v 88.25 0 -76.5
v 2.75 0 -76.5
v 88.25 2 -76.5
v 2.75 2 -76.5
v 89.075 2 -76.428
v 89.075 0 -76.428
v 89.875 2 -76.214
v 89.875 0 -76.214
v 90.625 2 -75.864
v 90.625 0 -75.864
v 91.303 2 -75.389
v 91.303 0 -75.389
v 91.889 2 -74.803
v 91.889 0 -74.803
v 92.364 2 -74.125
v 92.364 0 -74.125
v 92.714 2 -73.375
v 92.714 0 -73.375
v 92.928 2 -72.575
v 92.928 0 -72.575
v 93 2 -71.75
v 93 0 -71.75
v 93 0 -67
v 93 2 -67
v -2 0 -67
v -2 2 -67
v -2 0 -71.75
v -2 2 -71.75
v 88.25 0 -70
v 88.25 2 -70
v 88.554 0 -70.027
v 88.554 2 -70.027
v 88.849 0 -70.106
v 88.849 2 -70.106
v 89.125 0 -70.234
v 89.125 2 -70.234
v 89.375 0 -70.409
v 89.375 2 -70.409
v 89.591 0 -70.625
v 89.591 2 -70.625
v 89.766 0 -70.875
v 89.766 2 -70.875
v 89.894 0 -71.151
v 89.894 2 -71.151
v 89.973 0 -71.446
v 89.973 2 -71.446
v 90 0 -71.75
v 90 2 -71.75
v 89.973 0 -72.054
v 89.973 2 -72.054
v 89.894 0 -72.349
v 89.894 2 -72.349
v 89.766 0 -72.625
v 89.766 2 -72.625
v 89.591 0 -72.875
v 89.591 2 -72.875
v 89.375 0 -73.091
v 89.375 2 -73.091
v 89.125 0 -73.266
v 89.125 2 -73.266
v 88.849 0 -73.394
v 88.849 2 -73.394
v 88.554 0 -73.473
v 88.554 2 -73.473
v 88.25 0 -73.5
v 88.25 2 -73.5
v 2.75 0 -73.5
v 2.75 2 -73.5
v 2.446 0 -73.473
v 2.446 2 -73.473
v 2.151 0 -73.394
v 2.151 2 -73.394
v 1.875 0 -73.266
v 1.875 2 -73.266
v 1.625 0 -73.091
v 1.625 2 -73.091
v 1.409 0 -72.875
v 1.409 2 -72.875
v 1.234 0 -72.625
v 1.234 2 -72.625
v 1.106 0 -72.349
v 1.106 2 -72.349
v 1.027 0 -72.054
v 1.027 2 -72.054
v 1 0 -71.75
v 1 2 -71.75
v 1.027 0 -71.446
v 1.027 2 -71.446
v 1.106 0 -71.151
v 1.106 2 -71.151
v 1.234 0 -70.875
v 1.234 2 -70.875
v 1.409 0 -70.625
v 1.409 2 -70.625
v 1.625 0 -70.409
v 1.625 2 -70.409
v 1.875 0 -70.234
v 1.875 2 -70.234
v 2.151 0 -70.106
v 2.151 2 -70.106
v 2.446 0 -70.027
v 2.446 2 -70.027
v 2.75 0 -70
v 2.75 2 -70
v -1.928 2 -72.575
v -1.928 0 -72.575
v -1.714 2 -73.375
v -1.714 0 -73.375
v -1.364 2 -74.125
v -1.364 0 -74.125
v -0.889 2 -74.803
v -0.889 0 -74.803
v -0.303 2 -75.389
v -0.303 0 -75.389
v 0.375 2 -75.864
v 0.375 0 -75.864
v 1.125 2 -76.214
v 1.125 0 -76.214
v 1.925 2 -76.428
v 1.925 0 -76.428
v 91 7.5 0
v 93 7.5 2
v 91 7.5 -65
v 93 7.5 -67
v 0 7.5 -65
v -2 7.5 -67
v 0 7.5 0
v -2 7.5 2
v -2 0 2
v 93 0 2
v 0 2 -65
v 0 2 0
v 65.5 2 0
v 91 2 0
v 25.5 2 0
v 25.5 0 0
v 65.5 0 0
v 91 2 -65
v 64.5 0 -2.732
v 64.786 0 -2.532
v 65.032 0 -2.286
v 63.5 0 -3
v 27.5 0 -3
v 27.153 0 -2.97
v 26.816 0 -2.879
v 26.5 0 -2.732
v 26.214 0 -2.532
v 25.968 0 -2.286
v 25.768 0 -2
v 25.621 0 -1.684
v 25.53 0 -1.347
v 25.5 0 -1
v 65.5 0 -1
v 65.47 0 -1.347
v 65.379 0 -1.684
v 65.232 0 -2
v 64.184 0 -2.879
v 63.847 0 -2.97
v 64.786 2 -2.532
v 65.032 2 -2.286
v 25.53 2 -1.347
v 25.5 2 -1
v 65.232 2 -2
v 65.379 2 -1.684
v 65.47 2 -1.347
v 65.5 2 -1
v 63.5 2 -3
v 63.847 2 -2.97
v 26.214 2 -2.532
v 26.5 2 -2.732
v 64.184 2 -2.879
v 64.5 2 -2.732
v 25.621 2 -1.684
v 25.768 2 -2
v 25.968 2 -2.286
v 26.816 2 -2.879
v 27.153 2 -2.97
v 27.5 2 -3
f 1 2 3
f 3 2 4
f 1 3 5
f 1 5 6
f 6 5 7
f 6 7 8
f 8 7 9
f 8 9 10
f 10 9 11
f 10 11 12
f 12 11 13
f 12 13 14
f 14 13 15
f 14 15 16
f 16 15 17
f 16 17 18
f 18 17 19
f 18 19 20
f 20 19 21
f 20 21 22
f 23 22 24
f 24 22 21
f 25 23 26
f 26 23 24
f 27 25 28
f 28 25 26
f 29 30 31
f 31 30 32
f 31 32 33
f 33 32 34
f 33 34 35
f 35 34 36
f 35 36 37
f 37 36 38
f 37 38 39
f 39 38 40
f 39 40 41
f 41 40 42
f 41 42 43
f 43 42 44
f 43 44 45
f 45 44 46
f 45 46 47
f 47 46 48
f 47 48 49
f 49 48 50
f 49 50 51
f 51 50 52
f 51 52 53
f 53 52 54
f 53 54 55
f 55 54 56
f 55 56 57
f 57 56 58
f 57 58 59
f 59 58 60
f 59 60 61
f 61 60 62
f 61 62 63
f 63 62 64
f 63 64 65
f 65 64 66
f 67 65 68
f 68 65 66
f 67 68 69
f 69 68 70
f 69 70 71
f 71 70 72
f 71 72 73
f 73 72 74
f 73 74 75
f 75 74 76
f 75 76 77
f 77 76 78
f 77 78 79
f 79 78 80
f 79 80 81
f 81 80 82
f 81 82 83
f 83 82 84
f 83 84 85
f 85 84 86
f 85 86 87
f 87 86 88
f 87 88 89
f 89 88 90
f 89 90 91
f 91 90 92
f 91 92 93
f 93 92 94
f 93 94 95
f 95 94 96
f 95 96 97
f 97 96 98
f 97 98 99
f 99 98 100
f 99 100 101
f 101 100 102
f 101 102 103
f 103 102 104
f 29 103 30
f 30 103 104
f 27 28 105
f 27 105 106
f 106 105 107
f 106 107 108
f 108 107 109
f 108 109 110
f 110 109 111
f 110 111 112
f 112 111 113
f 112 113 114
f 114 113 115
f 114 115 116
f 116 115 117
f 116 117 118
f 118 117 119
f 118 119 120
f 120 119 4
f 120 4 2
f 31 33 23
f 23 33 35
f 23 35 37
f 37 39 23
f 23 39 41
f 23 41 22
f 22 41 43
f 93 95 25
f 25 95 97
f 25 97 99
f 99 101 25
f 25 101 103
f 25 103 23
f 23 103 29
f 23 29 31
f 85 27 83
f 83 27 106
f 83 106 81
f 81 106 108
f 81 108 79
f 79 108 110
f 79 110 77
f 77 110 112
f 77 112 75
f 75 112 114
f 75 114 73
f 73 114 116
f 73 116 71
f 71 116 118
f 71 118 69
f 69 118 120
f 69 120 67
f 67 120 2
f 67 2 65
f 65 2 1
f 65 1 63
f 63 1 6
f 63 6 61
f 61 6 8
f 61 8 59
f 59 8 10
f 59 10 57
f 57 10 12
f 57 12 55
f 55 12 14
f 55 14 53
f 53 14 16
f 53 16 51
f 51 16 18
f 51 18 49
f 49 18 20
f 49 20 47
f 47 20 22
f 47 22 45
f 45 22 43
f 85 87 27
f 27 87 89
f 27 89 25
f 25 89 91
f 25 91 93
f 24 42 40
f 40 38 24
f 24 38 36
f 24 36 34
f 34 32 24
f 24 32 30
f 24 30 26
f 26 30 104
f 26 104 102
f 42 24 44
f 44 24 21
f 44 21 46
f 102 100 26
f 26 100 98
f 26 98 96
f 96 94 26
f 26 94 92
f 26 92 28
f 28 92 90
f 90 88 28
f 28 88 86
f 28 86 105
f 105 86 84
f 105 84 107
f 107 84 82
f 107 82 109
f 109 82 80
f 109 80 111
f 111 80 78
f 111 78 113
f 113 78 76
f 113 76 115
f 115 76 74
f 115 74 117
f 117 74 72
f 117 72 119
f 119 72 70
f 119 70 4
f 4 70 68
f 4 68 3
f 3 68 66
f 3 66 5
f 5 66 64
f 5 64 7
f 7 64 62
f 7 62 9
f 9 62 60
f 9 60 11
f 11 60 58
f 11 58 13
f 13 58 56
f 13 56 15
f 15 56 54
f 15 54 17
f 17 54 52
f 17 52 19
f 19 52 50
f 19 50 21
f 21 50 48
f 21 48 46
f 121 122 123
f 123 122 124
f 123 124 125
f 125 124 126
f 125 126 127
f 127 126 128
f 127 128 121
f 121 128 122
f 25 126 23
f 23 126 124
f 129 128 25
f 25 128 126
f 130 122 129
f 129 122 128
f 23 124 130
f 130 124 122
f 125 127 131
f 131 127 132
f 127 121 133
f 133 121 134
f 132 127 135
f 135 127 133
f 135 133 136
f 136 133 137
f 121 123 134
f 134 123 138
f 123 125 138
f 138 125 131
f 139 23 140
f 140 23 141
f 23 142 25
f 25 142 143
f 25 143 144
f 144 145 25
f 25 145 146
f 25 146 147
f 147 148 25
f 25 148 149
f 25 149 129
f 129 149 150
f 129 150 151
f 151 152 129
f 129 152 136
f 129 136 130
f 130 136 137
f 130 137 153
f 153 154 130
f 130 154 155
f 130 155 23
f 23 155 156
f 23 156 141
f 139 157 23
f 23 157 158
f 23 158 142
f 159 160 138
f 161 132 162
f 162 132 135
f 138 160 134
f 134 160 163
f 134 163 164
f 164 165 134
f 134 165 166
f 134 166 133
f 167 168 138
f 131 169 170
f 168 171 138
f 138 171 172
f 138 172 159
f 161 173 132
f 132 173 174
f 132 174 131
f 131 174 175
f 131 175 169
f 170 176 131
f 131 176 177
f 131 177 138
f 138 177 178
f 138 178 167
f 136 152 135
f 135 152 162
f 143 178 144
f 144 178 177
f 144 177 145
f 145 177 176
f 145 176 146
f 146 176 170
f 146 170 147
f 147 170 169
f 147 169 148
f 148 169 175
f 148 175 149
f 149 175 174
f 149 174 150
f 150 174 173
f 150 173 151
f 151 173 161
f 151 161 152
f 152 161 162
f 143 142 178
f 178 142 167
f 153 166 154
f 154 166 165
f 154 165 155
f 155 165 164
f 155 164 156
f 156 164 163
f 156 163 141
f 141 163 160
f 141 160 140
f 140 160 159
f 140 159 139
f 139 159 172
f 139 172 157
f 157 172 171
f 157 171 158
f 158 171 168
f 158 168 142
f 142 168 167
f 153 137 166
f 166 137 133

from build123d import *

# Parameters (mm, degrees)
CROQUIS2_W                   = 91
CROQUIS2_H                   = 65
SALIENTE_EXTRUIR1_DEPTH      = 2
CROQUIS3_W                   = 95
CROQUIS3_H                   = 69
CROQUIS3_W_2                 = 91
CROQUIS3_H_2                 = 65
SALIENTE_EXTRUIR2_DEPTH      = 5.5
SALIENTE_EXTRUIR3_DEPTH      = 2
CORTAR_EXTRUIR1_DEPTH        = 121.54667146
SALIENTE_EXTRUIR4_DEPTH      = 5.5
SALIENTE_EXTRUIR4_DEPTH_BACK = 2
CROQUIS3_2_W                 = 95
CROQUIS3_2_H                 = 69
CROQUIS3_2_W_2               = 91
CROQUIS3_2_H_2               = 65


with BuildPart() as part:
    # Croquis2 → Saliente-Extruir1 (new body)
    with BuildSketch(Plane(origin=(0, 0, 0), x_dir=(1, 0, 0), z_dir=(0, 1, 0))):
        with Locations((45.5, 32.5)):
            Rectangle(CROQUIS2_W, CROQUIS2_H)
    extrude(amount=SALIENTE_EXTRUIR1_DEPTH)

    # Croquis6 → Cortar-Extruir1 (cut, through all)
    with BuildSketch(Plane(origin=(0, 2, 0), x_dir=(1, 0, 0), z_dir=(0, 1, 0))):
        with BuildLine():
            Line((25.5, 0), (65.5, 0))
            Line((65.5, 0), (65.5, 1))
            ThreePointArc((65.5, 1), (64.914213562, 2.414213562), (63.5, 3))
            Line((63.5, 3), (27.5, 3))
            ThreePointArc((27.5, 3), (26.085786438, 2.414213562), (25.5, 1))
            Line((25.5, 1), (25.5, 0))
        make_face()
    extrude(amount=-CORTAR_EXTRUIR1_DEPTH, mode=Mode.SUBTRACT)


with BuildPart() as body_2:
    # Croquis3 → Saliente-Extruir2 (new body)
    with BuildSketch(Plane(origin=(0, 2, 0), x_dir=(1, 0, 0), z_dir=(0, 1, 0))):
        with Locations((45.5, 32.5)):
            Rectangle(CROQUIS3_W, CROQUIS3_H)
        with Locations((45.5, 32.5)):
            Rectangle(CROQUIS3_W_2, CROQUIS3_H_2, mode=Mode.SUBTRACT)
    extrude(amount=SALIENTE_EXTRUIR2_DEPTH)


    add(part.part)  # Saliente-Extruir4 merges part
    # Croquis3<2> → Saliente-Extruir4 (add, two sides: drawn at the far end of the back side and taken through both)
    with BuildSketch(Plane(origin=(0, 2, 0), x_dir=(1, 0, 0), z_dir=(0, 1, 0)).offset(-SALIENTE_EXTRUIR4_DEPTH_BACK)):
        with Locations((45.5, 32.5)):
            Rectangle(CROQUIS3_2_W, CROQUIS3_2_H)
        with Locations((45.5, 32.5)):
            Rectangle(CROQUIS3_2_W_2, CROQUIS3_2_H_2, mode=Mode.SUBTRACT)
    extrude(amount=SALIENTE_EXTRUIR4_DEPTH + SALIENTE_EXTRUIR4_DEPTH_BACK)


with BuildPart() as body_3:
    # Croquis5 → Saliente-Extruir3 (new body)
    with BuildSketch(Plane(origin=(0, 2, 0), x_dir=(1, 0, 0), z_dir=(0, 1, 0))):
        with BuildLine():
            Line((88.25, 76.5), (2.75, 76.5))
            ThreePointArc((2.75, 76.5), (-0.608757211, 75.108757211), (-2, 71.75))
            Line((-2, 71.75), (-2, 67))
            Line((-2, 67), (93, 67))
            Line((93, 67), (93, 71.75))
            ThreePointArc((93, 71.75), (91.608757211, 75.108757211), (88.25, 76.5))
        make_face()
        with BuildLine():
            ThreePointArc((2.75, 70), (1, 71.75), (2.75, 73.5))
            Line((2.75, 73.5), (88.25, 73.5))
            ThreePointArc((88.25, 73.5), (90, 71.75), (88.25, 70))
            Line((88.25, 70), (2.75, 70))
        make_face(mode=Mode.SUBTRACT)
    extrude(amount=-SALIENTE_EXTRUIR3_DEPTH)


solid = Compound([body_2.part, body_3.part])
